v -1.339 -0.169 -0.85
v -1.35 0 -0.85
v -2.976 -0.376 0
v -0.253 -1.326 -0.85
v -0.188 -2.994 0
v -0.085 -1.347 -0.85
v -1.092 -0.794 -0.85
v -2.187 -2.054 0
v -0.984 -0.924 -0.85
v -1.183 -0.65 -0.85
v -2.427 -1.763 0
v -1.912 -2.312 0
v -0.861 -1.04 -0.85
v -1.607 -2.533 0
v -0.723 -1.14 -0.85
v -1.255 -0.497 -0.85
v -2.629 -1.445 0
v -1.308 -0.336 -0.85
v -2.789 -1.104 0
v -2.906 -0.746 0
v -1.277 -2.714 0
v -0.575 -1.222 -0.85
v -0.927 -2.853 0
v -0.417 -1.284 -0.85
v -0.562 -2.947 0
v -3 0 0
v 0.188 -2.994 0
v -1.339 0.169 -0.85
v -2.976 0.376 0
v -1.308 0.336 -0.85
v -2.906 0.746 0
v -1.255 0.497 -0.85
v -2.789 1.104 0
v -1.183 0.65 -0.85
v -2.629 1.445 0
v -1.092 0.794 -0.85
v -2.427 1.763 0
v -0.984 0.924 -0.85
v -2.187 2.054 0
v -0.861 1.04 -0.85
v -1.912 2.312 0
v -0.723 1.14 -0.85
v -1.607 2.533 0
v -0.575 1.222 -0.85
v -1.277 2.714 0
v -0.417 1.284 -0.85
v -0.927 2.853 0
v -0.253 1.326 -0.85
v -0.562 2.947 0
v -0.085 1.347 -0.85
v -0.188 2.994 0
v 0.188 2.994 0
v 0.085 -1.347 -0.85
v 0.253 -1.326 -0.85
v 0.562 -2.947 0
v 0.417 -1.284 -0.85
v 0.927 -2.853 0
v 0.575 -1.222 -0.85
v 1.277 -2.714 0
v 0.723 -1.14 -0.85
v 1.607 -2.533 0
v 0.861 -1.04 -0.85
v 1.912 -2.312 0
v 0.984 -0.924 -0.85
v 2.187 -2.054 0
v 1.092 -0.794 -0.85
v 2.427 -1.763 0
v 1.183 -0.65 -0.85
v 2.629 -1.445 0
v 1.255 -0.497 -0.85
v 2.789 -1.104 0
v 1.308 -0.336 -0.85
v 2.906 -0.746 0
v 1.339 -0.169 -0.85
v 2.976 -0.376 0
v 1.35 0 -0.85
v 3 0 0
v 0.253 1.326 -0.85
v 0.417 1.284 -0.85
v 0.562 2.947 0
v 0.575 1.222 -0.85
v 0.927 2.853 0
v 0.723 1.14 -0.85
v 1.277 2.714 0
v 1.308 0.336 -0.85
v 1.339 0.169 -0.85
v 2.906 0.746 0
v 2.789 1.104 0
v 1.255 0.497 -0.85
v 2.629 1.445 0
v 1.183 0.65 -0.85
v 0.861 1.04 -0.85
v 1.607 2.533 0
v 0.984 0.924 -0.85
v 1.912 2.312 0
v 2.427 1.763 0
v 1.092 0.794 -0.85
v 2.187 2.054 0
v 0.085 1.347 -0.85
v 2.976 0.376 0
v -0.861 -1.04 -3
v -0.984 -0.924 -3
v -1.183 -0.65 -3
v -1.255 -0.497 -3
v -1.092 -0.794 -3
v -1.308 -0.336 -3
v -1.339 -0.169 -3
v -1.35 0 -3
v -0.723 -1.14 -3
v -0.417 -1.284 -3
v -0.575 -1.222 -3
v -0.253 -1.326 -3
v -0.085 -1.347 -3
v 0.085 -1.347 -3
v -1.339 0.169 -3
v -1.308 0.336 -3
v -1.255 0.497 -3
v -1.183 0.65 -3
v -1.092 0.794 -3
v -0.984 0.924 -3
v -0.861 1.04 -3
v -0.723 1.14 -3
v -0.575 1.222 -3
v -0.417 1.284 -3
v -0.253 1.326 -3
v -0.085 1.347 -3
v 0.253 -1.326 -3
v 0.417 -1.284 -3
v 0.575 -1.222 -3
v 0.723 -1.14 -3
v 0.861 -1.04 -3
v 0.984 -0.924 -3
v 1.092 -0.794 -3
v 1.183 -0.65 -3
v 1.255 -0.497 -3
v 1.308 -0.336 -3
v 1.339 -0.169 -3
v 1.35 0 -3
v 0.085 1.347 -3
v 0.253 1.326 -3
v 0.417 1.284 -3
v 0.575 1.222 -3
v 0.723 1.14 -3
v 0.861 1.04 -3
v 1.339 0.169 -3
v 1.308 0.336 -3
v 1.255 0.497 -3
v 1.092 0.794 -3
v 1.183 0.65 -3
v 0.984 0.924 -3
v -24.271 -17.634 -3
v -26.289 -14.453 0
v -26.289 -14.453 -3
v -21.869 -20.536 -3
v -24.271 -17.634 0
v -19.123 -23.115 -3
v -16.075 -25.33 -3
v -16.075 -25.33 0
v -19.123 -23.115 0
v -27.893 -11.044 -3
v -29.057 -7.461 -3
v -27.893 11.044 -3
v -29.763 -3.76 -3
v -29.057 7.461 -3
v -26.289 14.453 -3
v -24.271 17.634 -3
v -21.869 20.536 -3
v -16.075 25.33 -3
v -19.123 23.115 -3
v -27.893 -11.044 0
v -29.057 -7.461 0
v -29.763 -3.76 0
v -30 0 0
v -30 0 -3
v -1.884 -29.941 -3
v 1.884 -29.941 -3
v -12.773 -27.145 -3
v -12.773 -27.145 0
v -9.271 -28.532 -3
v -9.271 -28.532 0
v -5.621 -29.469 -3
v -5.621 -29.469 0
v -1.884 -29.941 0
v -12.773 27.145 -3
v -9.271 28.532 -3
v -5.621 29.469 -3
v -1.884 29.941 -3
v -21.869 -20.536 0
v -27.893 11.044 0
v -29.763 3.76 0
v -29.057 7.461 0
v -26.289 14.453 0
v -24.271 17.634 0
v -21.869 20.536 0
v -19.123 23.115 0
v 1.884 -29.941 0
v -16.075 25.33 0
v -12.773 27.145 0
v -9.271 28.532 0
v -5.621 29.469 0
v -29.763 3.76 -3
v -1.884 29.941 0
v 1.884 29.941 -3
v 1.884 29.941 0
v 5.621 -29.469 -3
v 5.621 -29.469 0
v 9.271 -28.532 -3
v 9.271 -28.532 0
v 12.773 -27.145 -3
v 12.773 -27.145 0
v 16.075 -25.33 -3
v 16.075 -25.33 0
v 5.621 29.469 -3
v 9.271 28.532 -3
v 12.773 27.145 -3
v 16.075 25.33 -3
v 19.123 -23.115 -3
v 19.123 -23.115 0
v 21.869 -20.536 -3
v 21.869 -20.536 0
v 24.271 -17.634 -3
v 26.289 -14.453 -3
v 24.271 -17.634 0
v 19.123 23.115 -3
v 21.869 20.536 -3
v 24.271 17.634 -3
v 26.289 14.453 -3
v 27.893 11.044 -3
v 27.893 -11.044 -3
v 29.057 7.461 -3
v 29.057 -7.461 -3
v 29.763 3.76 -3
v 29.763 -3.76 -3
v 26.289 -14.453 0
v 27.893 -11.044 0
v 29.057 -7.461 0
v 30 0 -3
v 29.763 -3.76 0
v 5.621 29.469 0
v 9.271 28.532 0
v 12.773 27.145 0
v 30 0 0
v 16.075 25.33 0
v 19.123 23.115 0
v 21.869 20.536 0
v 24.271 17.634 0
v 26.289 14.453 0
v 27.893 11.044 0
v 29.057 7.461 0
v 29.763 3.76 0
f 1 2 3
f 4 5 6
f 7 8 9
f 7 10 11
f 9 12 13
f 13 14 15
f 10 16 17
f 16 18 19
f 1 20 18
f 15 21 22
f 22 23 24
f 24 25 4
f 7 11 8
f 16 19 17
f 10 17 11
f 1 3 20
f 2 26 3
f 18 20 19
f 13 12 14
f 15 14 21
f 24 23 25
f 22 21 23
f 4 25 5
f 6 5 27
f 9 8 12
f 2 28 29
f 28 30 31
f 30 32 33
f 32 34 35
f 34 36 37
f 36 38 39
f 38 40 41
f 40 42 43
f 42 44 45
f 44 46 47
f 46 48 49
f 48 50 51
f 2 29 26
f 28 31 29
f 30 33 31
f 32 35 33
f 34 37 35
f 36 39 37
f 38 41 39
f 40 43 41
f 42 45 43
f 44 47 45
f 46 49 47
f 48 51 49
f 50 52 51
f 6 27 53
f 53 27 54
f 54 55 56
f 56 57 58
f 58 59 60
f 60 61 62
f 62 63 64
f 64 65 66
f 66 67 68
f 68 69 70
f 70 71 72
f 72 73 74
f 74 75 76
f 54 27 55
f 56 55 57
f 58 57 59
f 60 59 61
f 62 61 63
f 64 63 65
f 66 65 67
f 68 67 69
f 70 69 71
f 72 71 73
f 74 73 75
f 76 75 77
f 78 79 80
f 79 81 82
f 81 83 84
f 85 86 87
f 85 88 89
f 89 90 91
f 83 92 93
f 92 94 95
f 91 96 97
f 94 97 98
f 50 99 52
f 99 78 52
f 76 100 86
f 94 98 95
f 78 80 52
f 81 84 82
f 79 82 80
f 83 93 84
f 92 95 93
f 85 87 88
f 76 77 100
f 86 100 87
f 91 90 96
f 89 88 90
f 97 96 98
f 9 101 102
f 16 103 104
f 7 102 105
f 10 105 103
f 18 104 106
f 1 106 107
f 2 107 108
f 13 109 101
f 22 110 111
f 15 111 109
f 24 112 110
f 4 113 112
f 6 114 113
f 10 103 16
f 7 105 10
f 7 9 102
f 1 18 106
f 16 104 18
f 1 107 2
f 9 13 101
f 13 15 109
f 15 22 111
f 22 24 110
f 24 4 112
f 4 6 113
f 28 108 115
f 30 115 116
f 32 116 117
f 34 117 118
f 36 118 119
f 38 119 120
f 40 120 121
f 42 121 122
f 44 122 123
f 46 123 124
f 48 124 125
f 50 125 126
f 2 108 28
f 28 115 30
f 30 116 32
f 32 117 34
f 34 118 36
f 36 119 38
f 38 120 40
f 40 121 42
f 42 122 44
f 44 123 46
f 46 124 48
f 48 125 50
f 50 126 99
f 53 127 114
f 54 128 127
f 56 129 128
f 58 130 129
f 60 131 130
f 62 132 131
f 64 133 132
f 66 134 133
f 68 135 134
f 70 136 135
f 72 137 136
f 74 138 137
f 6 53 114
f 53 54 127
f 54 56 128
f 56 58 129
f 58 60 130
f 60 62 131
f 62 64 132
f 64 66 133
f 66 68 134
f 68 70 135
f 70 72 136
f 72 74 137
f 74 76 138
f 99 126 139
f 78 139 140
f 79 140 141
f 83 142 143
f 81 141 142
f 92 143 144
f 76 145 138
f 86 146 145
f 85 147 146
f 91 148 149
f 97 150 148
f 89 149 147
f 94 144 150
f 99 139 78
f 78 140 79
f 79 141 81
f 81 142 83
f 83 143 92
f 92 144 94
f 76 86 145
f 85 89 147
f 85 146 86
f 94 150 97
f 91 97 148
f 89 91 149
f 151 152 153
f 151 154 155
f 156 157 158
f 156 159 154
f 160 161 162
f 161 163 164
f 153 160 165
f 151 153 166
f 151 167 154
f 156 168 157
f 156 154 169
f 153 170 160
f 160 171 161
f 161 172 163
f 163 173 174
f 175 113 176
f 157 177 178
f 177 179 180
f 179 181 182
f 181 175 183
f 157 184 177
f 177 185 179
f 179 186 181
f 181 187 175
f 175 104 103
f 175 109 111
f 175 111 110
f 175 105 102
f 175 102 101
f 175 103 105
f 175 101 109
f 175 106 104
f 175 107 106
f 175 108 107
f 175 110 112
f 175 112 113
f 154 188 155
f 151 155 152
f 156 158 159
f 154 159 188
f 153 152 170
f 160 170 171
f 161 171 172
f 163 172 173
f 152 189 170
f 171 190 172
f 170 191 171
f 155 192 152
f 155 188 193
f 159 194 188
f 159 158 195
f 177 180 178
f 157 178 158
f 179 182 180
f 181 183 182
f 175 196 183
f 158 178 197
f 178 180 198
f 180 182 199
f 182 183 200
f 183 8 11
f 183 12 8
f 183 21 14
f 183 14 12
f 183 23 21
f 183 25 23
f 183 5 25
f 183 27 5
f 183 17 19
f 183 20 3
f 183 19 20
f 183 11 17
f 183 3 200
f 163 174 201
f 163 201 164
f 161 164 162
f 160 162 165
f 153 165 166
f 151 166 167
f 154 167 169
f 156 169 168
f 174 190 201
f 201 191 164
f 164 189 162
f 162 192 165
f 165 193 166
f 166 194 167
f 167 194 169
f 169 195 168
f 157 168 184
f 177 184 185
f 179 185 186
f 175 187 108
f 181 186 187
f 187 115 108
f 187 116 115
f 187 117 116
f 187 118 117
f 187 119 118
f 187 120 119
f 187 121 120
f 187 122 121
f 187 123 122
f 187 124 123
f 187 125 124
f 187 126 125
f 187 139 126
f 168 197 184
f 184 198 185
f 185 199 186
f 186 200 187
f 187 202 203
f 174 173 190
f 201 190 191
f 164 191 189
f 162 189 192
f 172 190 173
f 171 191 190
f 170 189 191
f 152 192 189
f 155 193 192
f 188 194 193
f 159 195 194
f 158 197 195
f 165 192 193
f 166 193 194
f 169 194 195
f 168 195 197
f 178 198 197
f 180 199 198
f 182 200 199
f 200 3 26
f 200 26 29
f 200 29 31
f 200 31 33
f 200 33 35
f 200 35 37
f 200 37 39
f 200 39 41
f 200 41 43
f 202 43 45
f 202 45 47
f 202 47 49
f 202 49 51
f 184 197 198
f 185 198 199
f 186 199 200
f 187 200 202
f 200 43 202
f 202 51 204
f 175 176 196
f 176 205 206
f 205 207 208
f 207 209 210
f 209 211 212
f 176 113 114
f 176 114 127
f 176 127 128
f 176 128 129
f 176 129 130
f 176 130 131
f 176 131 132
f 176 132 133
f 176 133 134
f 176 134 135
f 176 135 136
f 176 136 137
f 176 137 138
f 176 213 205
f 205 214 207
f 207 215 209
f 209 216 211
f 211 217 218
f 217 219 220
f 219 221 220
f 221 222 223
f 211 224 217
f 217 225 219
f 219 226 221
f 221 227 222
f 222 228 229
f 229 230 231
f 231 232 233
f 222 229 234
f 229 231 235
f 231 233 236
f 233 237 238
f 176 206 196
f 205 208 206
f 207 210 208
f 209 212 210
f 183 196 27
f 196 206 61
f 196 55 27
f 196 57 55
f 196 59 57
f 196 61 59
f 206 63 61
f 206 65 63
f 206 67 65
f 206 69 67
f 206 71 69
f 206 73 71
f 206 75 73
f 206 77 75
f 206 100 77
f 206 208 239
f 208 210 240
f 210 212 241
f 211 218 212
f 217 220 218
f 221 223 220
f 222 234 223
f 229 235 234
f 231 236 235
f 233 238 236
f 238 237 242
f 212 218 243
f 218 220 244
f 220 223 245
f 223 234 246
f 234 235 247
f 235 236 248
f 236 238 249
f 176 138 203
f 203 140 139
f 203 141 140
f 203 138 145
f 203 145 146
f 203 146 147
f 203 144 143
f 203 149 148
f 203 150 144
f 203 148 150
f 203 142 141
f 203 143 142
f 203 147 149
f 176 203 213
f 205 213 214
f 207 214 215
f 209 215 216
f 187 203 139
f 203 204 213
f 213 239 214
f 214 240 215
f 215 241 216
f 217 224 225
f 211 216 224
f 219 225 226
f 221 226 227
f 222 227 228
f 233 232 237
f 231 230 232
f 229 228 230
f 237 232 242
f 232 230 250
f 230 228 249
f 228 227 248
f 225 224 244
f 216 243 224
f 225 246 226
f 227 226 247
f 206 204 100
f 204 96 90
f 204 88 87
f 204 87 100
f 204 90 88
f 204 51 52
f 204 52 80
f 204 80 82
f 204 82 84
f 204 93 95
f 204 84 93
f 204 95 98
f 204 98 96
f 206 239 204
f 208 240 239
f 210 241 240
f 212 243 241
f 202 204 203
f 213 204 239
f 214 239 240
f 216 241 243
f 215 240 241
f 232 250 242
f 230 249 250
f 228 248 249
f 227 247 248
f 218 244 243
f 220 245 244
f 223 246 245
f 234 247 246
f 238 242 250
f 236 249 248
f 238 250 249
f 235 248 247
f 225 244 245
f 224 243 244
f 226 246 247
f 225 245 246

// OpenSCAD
$fn = 50;

difference() {
	union() {
		translate(v = [0, 0, -3.0]) {
			cylinder(h = 3, r = 30.0);
		}
	}
	union() {
		translate(v = [0, 0, 0]) {
			rotate(a = [0, 0, 0]) {
				difference() {
					union() {
						translate(v = [0, 0, -6.0]) {
							cylinder(h = 6, r = 1.0);
						}
						translate(v = [0, 0, -0.85]) {
							cylinder(h = 0.85, r1 = 1.35, r2 = 3.0);
						}
						translate(v = [0, 0, -6.0]) {
							cylinder(h = 6, r = 1.35);
						}
						translate(v = [0, 0, -6.0]) {
							cylinder(h = 6, r = 1.0);
						}
					}
					union();
				}
			}
		}
	}
}
